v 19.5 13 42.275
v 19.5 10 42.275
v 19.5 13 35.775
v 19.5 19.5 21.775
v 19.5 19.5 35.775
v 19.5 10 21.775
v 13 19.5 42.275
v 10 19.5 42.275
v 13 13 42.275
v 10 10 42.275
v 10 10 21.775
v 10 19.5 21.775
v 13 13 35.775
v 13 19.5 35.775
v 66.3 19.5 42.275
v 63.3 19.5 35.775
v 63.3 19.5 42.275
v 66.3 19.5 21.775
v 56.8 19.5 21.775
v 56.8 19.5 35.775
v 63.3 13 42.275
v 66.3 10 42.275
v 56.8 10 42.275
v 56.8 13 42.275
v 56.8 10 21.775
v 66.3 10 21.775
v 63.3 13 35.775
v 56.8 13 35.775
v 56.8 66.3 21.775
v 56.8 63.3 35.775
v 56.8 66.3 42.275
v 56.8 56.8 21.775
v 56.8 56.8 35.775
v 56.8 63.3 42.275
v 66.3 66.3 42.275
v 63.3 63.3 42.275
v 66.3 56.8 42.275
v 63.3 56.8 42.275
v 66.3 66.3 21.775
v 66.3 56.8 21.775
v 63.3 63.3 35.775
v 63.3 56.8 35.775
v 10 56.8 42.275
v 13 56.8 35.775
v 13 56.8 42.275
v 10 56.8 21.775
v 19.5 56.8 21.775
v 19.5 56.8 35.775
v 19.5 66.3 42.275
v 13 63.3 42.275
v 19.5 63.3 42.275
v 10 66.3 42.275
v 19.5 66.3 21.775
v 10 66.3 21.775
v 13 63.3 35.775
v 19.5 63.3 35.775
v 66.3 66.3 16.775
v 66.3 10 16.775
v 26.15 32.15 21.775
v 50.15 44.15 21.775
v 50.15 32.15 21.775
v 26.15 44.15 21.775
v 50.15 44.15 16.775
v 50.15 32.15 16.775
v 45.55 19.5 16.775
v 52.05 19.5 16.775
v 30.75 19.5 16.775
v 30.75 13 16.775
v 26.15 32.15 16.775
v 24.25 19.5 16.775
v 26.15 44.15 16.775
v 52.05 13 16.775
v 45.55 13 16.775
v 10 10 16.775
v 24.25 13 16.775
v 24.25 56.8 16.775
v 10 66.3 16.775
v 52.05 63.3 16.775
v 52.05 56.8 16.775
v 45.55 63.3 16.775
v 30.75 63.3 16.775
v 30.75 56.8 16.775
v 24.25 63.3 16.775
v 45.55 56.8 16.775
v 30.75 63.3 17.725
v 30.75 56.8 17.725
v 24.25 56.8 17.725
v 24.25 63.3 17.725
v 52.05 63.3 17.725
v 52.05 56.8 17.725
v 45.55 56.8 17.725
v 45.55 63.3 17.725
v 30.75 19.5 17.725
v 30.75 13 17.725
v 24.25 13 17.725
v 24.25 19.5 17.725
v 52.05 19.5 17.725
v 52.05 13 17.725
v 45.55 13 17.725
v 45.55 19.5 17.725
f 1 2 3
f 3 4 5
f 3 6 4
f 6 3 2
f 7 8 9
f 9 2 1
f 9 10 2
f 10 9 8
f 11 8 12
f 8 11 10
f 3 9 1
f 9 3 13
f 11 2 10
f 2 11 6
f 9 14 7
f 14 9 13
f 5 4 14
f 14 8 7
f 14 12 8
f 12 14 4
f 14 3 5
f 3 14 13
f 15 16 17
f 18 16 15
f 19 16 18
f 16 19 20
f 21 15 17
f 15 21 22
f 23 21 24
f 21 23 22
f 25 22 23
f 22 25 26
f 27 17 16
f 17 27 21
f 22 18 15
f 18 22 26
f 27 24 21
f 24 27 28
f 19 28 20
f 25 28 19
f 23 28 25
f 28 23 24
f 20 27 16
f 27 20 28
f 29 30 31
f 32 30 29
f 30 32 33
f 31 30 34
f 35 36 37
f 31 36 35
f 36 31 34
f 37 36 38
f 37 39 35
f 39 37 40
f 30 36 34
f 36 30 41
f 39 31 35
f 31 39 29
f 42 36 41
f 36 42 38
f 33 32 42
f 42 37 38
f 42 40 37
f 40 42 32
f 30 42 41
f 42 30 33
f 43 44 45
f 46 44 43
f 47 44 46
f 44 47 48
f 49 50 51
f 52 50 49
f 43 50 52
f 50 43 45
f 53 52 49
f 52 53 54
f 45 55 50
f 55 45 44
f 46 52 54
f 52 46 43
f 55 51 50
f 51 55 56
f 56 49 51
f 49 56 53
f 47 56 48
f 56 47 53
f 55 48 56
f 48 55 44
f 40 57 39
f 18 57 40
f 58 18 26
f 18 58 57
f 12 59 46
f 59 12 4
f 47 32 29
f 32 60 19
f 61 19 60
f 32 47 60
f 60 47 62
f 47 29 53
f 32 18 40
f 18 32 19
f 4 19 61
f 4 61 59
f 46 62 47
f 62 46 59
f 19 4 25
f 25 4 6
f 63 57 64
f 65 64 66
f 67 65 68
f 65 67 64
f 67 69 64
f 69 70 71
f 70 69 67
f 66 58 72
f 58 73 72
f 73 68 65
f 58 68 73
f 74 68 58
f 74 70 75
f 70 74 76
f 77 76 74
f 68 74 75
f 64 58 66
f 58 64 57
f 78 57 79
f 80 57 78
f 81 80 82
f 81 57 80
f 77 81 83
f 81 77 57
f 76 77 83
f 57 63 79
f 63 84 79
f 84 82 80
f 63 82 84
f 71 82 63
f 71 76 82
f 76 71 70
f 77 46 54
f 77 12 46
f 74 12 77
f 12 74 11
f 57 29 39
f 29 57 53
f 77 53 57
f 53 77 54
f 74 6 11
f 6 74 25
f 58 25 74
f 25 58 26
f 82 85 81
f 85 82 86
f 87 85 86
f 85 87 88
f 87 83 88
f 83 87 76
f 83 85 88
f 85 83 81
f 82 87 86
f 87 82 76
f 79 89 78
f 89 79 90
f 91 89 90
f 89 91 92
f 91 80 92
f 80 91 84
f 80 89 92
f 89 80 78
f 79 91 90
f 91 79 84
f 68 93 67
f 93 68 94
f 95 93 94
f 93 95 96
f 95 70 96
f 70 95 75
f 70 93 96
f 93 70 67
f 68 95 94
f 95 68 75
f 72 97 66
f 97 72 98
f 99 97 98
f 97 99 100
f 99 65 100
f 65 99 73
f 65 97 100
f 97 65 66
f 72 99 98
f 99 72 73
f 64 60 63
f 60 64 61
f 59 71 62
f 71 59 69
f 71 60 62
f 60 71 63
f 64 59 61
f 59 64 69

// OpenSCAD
// file: module_Cubo.scad
module Cubo(){
    difference(){
        cube([50,50,50]);
        #translate([2.5,2.5,2.5])cube(45);
        #translate([25,25,0])cylinder(h=2.5,r1=15,r2=15);
        #translate([25,25,47.5])cylinder(h=2.5,r1=15,r2=15);
        rotate([90,0,0])translate([25,25,-2.5])cylinder(h=2.5,r1=15,r2=15);
        rotate([90,0,0])translate([25,25,-50])cylinder(h=2.5,r1=15,r2=15);
        rotate([0,90,0])translate([-25,25,])cylinder(h=2.5,r1=15,r2=15);
        rotate([0,90,0])translate([-25,25,47.5])cylinder(h=2.5,r1=15,r2=15);
    }
}
// main file
// ----- ----- Declaração de Variáveis ----- ----- //

res=10;

folga1=0.15;
folga2=0.05;

cubo=50;

ds_splh=(44+40)/2;
d_splh=ds_splh/12; //3.5

diff_splh_x=17;
diff_splh_y=10;
diff_splh_z=19.25;

raio_bobina=12.5;

xeuss_x=76.3;
xeuss_y=76.3;
xeuss_z=5;

xt=14;
yt=89.8-xeuss_y;
zt=xeuss_z;

rx=6.6/2;
tr_x=13.65;
tr_cil=10+rx;
cc = (56.5+43.45)/2;

Xdelize=xeuss_x;
Ydelize=25;
Zdelize=11.7-xeuss_z;

alt_poly=15-Zdelize-xeuss_z;
esp_poly=2.5;
apt_poly=7.4;
poly5=5;

x_encaixe=xeuss_x-2*poly5;
y_encaixe=20;
z_encaixe=3;

splh_x=20;
splh_y=10;
splh_z=60.35-z_encaixe;
r_splh=1;

alt_bob=11;

esp_pottop=3;
long_pottop=6.5;
alt_quad=5;
trans_aux2=-diff_splh_z/2-cubo/2+xeuss_z+Zdelize+splh_z-splh_x/2+diff_splh_x/2+z_encaixe-folga1-esp_pottop-alt_bob-alt_quad;
desce_enough=trans_aux2-xeuss_z-folga2;
gordura=1;

// ----- ----- Declaração de Bibliotecas ----- ----- //
use <funcoes_GFCx.scad>
use <module_Cubo.scad>
use <module_MontagemDoCubo.scad>

//não apague, mas também não descomente
//translate([tr_x,xeuss_y,0])cube([xt,yt,zt]); 

// ----- ----- Declaração de Funções ----- ----- //
module pottop(param,param2,folga,alt){
    translate([-param-folga,-param-folga,-param-folga]){
        cube([param+param2,param,param+param2]);
        cube([param,param+param2,param+param2]);
        translate([0,0,-alt])cube([param+param2,param+param2,param+alt]);
    }
}

/*
// ----- ----- Base Atuador Manual Linear ----- ----- //
difference(){
    translate([0,0,0])cube([xeuss_x,xeuss_y,xeuss_z]);
    translate([tr_cil,tr_cil,0]){
        #translate([0,0,0])cylinder(xeuss_z,rx+folga1,rx+folga1,$fn=res);
        #translate([cc,0,0])cylinder(xeuss_z,rx+folga1,rx+folga1,$fn=res);
        #translate([0,cc,0])cylinder(xeuss_z,rx+folga1,rx+folga1,$fn=res);
        #translate([cc,cc,0])cylinder(xeuss_z,rx+folga1,rx+folga1,$fn=res);
    }
}*/

/*
// ----- ----- Suporte de Amostras ----- ----- //
translate([0,xeuss_y/2-Ydelize/2,xeuss_z])cube([Xdelize,Ydelize,Zdelize]);
translate([0,xeuss_y/2-Ydelize/2,xeuss_z+Zdelize]){
    linear_extrude(alt_poly)polygon([[0,0],[xeuss_x,0],[xeuss_x,apt_poly],[xeuss_x-poly5,esp_poly-folga1],[poly5,esp_poly-folga1]]);
    translate([0,Ydelize,0])linear_extrude(alt_poly)polygon([[0,0],[xeuss_x,0],[xeuss_x,-apt_poly],[xeuss_x-poly5,-esp_poly+folga1],[poly5,-esp_poly+folga1]]);
}
translate([poly5,xeuss_y/2-Ydelize/2+esp_poly,xeuss_z+Zdelize]){
    cube([x_encaixe,y_encaixe,z_encaixe]);
    difference(){
        translate([x_encaixe/2-splh_x/2,y_encaixe/2-splh_y/2,z_encaixe])cube([splh_x,splh_y,splh_z]);
        #translate([x_encaixe/2-splh_x/2+splh_x/2-diff_splh_x/2,y_encaixe/2-splh_y/2,splh_z-(splh_x/2-diff_splh_x/2)-diff_splh_z+z_encaixe])
        #cube([diff_splh_x,diff_splh_y,diff_splh_z]);
        #translate([0,0,-10])
        #translate([x_encaixe/2-splh_x/2+splh_x/2-(4*d_splh)/2,y_encaixe/2,splh_z-(splh_x/2-diff_splh_x/2)-diff_splh_z+z_encaixe])
        #funcao_2d_array_cilindros(r_splh,d_splh,10+splh_x/2-diff_splh_x/2+diff_splh_z,5,1,1,res,"Conjunto Sample Holder");
        #translate([0,0,-10])
        #translate([x_encaixe/2-splh_x/2+splh_x/2-(d_splh*4)/2,y_encaixe/2,splh_z-(splh_x/2-diff_splh_x/2)-diff_splh_z+z_encaixe])
        #3d_array_sp_cb(1,1,1,1,d_splh,30,5,1,1,1,"sphere",res,"Conjunto Sample Holder Esferas");
    }
}*/

difference(){
    translate([xeuss_x/2-cubo/2,xeuss_x/2-cubo/2,0])
    translate([0,0,splh_z-(splh_x/2-diff_splh_x/2)-diff_splh_z+z_encaixe])
    translate([0,0,xeuss_z+Zdelize])
    translate([0,0,diff_splh_z/2-cubo/2]){
        //MontagemDoCubo();
        //Cubo();
        
        pottop(esp_pottop,long_pottop,folga1,alt_bob);
        translate([50,0,0])rotate([0,0,90])pottop(esp_pottop,long_pottop,folga1,alt_bob);
        translate([50,50,0])rotate([0,0,2*90])pottop(esp_pottop,long_pottop,folga1,alt_bob);
        translate([0,50,0])rotate([0,0,3*90])pottop(esp_pottop,long_pottop,folga1,alt_bob);

        translate([-folga1-esp_pottop,-folga1-esp_pottop,-folga1-esp_pottop-alt_bob-alt_quad])
        cube([cubo+2*esp_pottop+2*folga1,cubo+2*esp_pottop+2*folga1,alt_quad]);
        /*
        translate([0,0,-desce_enough-folga2]){
            translate([(long_pottop+esp_pottop)*1.5,esp_pottop,0])
            translate([-folga1-esp_pottop,-folga1-esp_pottop,-folga1-esp_pottop-alt_bob-alt_quad])
            cube([long_pottop,long_pottop,desce_enough]);
            translate([-(long_pottop+esp_pottop)*1.5,esp_pottop,0])
            translate([cubo+2*esp_pottop+2*folga1-long_pottop,0,0])
            translate([-folga1-esp_pottop,-folga1-esp_pottop,-folga1-esp_pottop-alt_bob-alt_quad])
            cube([long_pottop,long_pottop,desce_enough]);
            translate([0,cubo+2*esp_pottop+2*folga1-long_pottop-esp_pottop,0]){
                translate([(long_pottop+esp_pottop)*1.5,0,0])
                translate([-folga1-esp_pottop,-folga1-esp_pottop,-folga1-esp_pottop-alt_bob-alt_quad])
                cube([long_pottop,long_pottop,desce_enough]);
                translate([-(long_pottop+esp_pottop)*1.5,0,0])
                translate([cubo+2*esp_pottop+2*folga1-long_pottop,0,0])
                translate([-folga1-esp_pottop,-folga1-esp_pottop,-folga1-esp_pottop-alt_bob-alt_quad])
                cube([long_pottop,long_pottop,desce_enough]);
            }
        }*/
    }
    #translate([poly5,xeuss_y/2-Ydelize/2+esp_poly,xeuss_z+Zdelize])
    #translate([x_encaixe/2-(splh_x*1.2)/2,y_encaixe/2-(splh_y*1.2)/2,z_encaixe])
    #cube([splh_x*1.2,splh_y*1.2,splh_z*0.2]);
    
    #translate([0,0,gordura])
    #translate([xeuss_x/2-cubo/2,xeuss_x/2-cubo/2,0])
    #translate([0,0,splh_z-(splh_x/2-diff_splh_x/2)-diff_splh_z+z_encaixe])
    #translate([0,0,xeuss_z+Zdelize])
    #translate([0,0,diff_splh_z/2-cubo/2])
    translate([0,0,-desce_enough-folga2]){
        translate([(long_pottop+esp_pottop)*1.5,esp_pottop,0])
        translate([-folga1-esp_pottop,-folga1-esp_pottop,-folga1-esp_pottop-alt_bob-alt_quad])
        cube([long_pottop,long_pottop,desce_enough]);
        translate([-(long_pottop+esp_pottop)*1.5,esp_pottop,0])
        translate([cubo+2*esp_pottop+2*folga1-long_pottop,0,0])
        translate([-folga1-esp_pottop,-folga1-esp_pottop,-folga1-esp_pottop-alt_bob-alt_quad])
        cube([long_pottop,long_pottop,desce_enough]);
        translate([0,cubo+2*esp_pottop+2*folga1-long_pottop-esp_pottop,0]){
            translate([(long_pottop+esp_pottop)*1.5,0,0])
            translate([-folga1-esp_pottop,-folga1-esp_pottop,-folga1-esp_pottop-alt_bob-alt_quad])
            cube([long_pottop,long_pottop,desce_enough]);
            translate([-(long_pottop+esp_pottop)*1.5,0,0])
            translate([cubo+2*esp_pottop+2*folga1-long_pottop,0,0])
            translate([-folga1-esp_pottop,-folga1-esp_pottop,-folga1-esp_pottop-alt_bob-alt_quad])
            cube([long_pottop,long_pottop,desce_enough]);
        }
    }
}
/*
difference(){
    translate([0,0,folga2])
    translate([xeuss_x/2-cubo/2,xeuss_x/2-cubo/2,0])
    translate([0,0,splh_z-(splh_x/2-diff_splh_x/2)-diff_splh_z+z_encaixe])
    translate([0,0,xeuss_z+Zdelize])
    translate([0,0,diff_splh_z/2-cubo/2])
    translate([0,0,-desce_enough-folga2]){
        translate([-gordura,-gordura,0])
        translate([(long_pottop+esp_pottop)*1.5,esp_pottop,0])
        translate([-folga1-esp_pottop,-folga1-esp_pottop,-folga1-esp_pottop-alt_bob-alt_quad])
        cube([long_pottop+2*gordura,long_pottop+2*gordura,desce_enough-folga2]);
        translate([-gordura,-gordura,0])
        translate([-(long_pottop+esp_pottop)*1.5,esp_pottop,0])
        translate([cubo+2*esp_pottop+2*folga1-long_pottop,0,0])
        translate([-folga1-esp_pottop,-folga1-esp_pottop,-folga1-esp_pottop-alt_bob-alt_quad])
        cube([long_pottop+2*gordura,long_pottop+2*gordura,desce_enough-folga2]);
        translate([0,cubo+2*esp_pottop+2*folga1-long_pottop-esp_pottop,0]){
            translate([-gordura,-gordura,0])
            translate([(long_pottop+esp_pottop)*1.5,0,0])
            translate([-folga1-esp_pottop,-folga1-esp_pottop,-folga1-esp_pottop-alt_bob-alt_quad])
            cube([long_pottop+2*gordura,long_pottop+2*gordura,desce_enough-folga2]);
            translate([-gordura,-gordura,0])
            translate([-(long_pottop+esp_pottop)*1.5,0,0])
            translate([cubo+2*esp_pottop+2*folga1-long_pottop,0,0])
            translate([-folga1-esp_pottop,-folga1-esp_pottop,-folga1-esp_pottop-alt_bob-alt_quad])
            cube([long_pottop+2*gordura,long_pottop+2*gordura,desce_enough-folga2]);
        }
    }
    #translate([0,0,-folga2])
    #translate([xeuss_x/2-cubo/2,xeuss_x/2-cubo/2,0])
    #translate([0,0,splh_z-(splh_x/2-diff_splh_x/2)-diff_splh_z+z_encaixe])
    #translate([0,0,xeuss_z+Zdelize])
    #translate([0,0,diff_splh_z/2-cubo/2])
    #translate([0,0,-desce_enough-folga2]){
        #translate([-folga1,-folga1,0])
        #translate([(long_pottop+esp_pottop)*1.5,esp_pottop,0])
        #translate([-folga1-esp_pottop,-folga1-esp_pottop,-folga1-esp_pottop-alt_bob-alt_quad])
        #cube([long_pottop+2*folga1,long_pottop+2*folga1,gordura]);
        #translate([-folga1,-folga1,0])
        #translate([-(long_pottop+esp_pottop)*1.5,esp_pottop,0])
        #translate([cubo+2*esp_pottop+2*folga1-long_pottop,0,0])
        #translate([-folga1-esp_pottop,-folga1-esp_pottop,-folga1-esp_pottop-alt_bob-alt_quad])
        #cube([long_pottop+2*folga1,long_pottop+2*folga1,gordura]);
        #translate([0,cubo+2*esp_pottop+2*folga1-long_pottop-esp_pottop,0]){
            #translate([-folga1,-folga1,0])
            #translate([(long_pottop+esp_pottop)*1.5,0,0])
            #translate([-folga1-esp_pottop,-folga1-esp_pottop,-folga1-esp_pottop-alt_bob-alt_quad])
            #cube([long_pottop+2*folga1,long_pottop+2*folga1,gordura]);
            #translate([-folga1,-folga1,0])
            #translate([-(long_pottop+esp_pottop)*1.5,0,0])
            #translate([cubo+2*esp_pottop+2*folga1-long_pottop,0,0])
            #translate([-folga1-esp_pottop,-folga1-esp_pottop,-folga1-esp_pottop-alt_bob-alt_quad])
            #cube([long_pottop+2*folga1,long_pottop+2*folga1,gordura]);
        }
    }
}*/

/*
translate([0,0,gordura+folga2])
translate([xeuss_x/2-cubo/2,xeuss_x/2-cubo/2,0])
translate([0,0,splh_z-(splh_x/2-diff_splh_x/2)-diff_splh_z+z_encaixe])
translate([0,0,xeuss_z+Zdelize])
translate([0,0,diff_splh_z/2-cubo/2])
translate([0,0,-desce_enough-folga2]){
    translate([folga1,folga1,0])
    translate([(long_pottop+esp_pottop)*1.5,esp_pottop,0])
    translate([-folga1-esp_pottop,-folga1-esp_pottop,-folga1-esp_pottop-alt_bob-alt_quad])
    cube([long_pottop-2*folga1,long_pottop-2*folga1,desce_enough-2*folga2]);
    translate([folga1,folga1,0])
    translate([-(long_pottop+esp_pottop)*1.5,esp_pottop,0])
    translate([cubo+2*esp_pottop+2*folga1-long_pottop,0,0])
    translate([-folga1-esp_pottop,-folga1-esp_pottop,-folga1-esp_pottop-alt_bob-alt_quad])
    cube([long_pottop-2*folga1,long_pottop-2*folga1,desce_enough-2*folga2]);
    translate([0,cubo+2*esp_pottop+2*folga1-long_pottop-esp_pottop,0]){
        translate([folga1,folga1,0])
        translate([(long_pottop+esp_pottop)*1.5,0,0])
        translate([-folga1-esp_pottop,-folga1-esp_pottop,-folga1-esp_pottop-alt_bob-alt_quad])
        cube([long_pottop-2*folga1,long_pottop-2*folga1,desce_enough-2*folga2]);
        translate([folga1,folga1,0])
        translate([-(long_pottop+esp_pottop)*1.5,0,0])
        translate([cubo+2*esp_pottop+2*folga1-long_pottop,0,0])
        translate([-folga1-esp_pottop,-folga1-esp_pottop,-folga1-esp_pottop-alt_bob-alt_quad])
        cube([long_pottop-2*folga1,long_pottop-2*folga1,desce_enough-2*folga2]);
    }
}*/
